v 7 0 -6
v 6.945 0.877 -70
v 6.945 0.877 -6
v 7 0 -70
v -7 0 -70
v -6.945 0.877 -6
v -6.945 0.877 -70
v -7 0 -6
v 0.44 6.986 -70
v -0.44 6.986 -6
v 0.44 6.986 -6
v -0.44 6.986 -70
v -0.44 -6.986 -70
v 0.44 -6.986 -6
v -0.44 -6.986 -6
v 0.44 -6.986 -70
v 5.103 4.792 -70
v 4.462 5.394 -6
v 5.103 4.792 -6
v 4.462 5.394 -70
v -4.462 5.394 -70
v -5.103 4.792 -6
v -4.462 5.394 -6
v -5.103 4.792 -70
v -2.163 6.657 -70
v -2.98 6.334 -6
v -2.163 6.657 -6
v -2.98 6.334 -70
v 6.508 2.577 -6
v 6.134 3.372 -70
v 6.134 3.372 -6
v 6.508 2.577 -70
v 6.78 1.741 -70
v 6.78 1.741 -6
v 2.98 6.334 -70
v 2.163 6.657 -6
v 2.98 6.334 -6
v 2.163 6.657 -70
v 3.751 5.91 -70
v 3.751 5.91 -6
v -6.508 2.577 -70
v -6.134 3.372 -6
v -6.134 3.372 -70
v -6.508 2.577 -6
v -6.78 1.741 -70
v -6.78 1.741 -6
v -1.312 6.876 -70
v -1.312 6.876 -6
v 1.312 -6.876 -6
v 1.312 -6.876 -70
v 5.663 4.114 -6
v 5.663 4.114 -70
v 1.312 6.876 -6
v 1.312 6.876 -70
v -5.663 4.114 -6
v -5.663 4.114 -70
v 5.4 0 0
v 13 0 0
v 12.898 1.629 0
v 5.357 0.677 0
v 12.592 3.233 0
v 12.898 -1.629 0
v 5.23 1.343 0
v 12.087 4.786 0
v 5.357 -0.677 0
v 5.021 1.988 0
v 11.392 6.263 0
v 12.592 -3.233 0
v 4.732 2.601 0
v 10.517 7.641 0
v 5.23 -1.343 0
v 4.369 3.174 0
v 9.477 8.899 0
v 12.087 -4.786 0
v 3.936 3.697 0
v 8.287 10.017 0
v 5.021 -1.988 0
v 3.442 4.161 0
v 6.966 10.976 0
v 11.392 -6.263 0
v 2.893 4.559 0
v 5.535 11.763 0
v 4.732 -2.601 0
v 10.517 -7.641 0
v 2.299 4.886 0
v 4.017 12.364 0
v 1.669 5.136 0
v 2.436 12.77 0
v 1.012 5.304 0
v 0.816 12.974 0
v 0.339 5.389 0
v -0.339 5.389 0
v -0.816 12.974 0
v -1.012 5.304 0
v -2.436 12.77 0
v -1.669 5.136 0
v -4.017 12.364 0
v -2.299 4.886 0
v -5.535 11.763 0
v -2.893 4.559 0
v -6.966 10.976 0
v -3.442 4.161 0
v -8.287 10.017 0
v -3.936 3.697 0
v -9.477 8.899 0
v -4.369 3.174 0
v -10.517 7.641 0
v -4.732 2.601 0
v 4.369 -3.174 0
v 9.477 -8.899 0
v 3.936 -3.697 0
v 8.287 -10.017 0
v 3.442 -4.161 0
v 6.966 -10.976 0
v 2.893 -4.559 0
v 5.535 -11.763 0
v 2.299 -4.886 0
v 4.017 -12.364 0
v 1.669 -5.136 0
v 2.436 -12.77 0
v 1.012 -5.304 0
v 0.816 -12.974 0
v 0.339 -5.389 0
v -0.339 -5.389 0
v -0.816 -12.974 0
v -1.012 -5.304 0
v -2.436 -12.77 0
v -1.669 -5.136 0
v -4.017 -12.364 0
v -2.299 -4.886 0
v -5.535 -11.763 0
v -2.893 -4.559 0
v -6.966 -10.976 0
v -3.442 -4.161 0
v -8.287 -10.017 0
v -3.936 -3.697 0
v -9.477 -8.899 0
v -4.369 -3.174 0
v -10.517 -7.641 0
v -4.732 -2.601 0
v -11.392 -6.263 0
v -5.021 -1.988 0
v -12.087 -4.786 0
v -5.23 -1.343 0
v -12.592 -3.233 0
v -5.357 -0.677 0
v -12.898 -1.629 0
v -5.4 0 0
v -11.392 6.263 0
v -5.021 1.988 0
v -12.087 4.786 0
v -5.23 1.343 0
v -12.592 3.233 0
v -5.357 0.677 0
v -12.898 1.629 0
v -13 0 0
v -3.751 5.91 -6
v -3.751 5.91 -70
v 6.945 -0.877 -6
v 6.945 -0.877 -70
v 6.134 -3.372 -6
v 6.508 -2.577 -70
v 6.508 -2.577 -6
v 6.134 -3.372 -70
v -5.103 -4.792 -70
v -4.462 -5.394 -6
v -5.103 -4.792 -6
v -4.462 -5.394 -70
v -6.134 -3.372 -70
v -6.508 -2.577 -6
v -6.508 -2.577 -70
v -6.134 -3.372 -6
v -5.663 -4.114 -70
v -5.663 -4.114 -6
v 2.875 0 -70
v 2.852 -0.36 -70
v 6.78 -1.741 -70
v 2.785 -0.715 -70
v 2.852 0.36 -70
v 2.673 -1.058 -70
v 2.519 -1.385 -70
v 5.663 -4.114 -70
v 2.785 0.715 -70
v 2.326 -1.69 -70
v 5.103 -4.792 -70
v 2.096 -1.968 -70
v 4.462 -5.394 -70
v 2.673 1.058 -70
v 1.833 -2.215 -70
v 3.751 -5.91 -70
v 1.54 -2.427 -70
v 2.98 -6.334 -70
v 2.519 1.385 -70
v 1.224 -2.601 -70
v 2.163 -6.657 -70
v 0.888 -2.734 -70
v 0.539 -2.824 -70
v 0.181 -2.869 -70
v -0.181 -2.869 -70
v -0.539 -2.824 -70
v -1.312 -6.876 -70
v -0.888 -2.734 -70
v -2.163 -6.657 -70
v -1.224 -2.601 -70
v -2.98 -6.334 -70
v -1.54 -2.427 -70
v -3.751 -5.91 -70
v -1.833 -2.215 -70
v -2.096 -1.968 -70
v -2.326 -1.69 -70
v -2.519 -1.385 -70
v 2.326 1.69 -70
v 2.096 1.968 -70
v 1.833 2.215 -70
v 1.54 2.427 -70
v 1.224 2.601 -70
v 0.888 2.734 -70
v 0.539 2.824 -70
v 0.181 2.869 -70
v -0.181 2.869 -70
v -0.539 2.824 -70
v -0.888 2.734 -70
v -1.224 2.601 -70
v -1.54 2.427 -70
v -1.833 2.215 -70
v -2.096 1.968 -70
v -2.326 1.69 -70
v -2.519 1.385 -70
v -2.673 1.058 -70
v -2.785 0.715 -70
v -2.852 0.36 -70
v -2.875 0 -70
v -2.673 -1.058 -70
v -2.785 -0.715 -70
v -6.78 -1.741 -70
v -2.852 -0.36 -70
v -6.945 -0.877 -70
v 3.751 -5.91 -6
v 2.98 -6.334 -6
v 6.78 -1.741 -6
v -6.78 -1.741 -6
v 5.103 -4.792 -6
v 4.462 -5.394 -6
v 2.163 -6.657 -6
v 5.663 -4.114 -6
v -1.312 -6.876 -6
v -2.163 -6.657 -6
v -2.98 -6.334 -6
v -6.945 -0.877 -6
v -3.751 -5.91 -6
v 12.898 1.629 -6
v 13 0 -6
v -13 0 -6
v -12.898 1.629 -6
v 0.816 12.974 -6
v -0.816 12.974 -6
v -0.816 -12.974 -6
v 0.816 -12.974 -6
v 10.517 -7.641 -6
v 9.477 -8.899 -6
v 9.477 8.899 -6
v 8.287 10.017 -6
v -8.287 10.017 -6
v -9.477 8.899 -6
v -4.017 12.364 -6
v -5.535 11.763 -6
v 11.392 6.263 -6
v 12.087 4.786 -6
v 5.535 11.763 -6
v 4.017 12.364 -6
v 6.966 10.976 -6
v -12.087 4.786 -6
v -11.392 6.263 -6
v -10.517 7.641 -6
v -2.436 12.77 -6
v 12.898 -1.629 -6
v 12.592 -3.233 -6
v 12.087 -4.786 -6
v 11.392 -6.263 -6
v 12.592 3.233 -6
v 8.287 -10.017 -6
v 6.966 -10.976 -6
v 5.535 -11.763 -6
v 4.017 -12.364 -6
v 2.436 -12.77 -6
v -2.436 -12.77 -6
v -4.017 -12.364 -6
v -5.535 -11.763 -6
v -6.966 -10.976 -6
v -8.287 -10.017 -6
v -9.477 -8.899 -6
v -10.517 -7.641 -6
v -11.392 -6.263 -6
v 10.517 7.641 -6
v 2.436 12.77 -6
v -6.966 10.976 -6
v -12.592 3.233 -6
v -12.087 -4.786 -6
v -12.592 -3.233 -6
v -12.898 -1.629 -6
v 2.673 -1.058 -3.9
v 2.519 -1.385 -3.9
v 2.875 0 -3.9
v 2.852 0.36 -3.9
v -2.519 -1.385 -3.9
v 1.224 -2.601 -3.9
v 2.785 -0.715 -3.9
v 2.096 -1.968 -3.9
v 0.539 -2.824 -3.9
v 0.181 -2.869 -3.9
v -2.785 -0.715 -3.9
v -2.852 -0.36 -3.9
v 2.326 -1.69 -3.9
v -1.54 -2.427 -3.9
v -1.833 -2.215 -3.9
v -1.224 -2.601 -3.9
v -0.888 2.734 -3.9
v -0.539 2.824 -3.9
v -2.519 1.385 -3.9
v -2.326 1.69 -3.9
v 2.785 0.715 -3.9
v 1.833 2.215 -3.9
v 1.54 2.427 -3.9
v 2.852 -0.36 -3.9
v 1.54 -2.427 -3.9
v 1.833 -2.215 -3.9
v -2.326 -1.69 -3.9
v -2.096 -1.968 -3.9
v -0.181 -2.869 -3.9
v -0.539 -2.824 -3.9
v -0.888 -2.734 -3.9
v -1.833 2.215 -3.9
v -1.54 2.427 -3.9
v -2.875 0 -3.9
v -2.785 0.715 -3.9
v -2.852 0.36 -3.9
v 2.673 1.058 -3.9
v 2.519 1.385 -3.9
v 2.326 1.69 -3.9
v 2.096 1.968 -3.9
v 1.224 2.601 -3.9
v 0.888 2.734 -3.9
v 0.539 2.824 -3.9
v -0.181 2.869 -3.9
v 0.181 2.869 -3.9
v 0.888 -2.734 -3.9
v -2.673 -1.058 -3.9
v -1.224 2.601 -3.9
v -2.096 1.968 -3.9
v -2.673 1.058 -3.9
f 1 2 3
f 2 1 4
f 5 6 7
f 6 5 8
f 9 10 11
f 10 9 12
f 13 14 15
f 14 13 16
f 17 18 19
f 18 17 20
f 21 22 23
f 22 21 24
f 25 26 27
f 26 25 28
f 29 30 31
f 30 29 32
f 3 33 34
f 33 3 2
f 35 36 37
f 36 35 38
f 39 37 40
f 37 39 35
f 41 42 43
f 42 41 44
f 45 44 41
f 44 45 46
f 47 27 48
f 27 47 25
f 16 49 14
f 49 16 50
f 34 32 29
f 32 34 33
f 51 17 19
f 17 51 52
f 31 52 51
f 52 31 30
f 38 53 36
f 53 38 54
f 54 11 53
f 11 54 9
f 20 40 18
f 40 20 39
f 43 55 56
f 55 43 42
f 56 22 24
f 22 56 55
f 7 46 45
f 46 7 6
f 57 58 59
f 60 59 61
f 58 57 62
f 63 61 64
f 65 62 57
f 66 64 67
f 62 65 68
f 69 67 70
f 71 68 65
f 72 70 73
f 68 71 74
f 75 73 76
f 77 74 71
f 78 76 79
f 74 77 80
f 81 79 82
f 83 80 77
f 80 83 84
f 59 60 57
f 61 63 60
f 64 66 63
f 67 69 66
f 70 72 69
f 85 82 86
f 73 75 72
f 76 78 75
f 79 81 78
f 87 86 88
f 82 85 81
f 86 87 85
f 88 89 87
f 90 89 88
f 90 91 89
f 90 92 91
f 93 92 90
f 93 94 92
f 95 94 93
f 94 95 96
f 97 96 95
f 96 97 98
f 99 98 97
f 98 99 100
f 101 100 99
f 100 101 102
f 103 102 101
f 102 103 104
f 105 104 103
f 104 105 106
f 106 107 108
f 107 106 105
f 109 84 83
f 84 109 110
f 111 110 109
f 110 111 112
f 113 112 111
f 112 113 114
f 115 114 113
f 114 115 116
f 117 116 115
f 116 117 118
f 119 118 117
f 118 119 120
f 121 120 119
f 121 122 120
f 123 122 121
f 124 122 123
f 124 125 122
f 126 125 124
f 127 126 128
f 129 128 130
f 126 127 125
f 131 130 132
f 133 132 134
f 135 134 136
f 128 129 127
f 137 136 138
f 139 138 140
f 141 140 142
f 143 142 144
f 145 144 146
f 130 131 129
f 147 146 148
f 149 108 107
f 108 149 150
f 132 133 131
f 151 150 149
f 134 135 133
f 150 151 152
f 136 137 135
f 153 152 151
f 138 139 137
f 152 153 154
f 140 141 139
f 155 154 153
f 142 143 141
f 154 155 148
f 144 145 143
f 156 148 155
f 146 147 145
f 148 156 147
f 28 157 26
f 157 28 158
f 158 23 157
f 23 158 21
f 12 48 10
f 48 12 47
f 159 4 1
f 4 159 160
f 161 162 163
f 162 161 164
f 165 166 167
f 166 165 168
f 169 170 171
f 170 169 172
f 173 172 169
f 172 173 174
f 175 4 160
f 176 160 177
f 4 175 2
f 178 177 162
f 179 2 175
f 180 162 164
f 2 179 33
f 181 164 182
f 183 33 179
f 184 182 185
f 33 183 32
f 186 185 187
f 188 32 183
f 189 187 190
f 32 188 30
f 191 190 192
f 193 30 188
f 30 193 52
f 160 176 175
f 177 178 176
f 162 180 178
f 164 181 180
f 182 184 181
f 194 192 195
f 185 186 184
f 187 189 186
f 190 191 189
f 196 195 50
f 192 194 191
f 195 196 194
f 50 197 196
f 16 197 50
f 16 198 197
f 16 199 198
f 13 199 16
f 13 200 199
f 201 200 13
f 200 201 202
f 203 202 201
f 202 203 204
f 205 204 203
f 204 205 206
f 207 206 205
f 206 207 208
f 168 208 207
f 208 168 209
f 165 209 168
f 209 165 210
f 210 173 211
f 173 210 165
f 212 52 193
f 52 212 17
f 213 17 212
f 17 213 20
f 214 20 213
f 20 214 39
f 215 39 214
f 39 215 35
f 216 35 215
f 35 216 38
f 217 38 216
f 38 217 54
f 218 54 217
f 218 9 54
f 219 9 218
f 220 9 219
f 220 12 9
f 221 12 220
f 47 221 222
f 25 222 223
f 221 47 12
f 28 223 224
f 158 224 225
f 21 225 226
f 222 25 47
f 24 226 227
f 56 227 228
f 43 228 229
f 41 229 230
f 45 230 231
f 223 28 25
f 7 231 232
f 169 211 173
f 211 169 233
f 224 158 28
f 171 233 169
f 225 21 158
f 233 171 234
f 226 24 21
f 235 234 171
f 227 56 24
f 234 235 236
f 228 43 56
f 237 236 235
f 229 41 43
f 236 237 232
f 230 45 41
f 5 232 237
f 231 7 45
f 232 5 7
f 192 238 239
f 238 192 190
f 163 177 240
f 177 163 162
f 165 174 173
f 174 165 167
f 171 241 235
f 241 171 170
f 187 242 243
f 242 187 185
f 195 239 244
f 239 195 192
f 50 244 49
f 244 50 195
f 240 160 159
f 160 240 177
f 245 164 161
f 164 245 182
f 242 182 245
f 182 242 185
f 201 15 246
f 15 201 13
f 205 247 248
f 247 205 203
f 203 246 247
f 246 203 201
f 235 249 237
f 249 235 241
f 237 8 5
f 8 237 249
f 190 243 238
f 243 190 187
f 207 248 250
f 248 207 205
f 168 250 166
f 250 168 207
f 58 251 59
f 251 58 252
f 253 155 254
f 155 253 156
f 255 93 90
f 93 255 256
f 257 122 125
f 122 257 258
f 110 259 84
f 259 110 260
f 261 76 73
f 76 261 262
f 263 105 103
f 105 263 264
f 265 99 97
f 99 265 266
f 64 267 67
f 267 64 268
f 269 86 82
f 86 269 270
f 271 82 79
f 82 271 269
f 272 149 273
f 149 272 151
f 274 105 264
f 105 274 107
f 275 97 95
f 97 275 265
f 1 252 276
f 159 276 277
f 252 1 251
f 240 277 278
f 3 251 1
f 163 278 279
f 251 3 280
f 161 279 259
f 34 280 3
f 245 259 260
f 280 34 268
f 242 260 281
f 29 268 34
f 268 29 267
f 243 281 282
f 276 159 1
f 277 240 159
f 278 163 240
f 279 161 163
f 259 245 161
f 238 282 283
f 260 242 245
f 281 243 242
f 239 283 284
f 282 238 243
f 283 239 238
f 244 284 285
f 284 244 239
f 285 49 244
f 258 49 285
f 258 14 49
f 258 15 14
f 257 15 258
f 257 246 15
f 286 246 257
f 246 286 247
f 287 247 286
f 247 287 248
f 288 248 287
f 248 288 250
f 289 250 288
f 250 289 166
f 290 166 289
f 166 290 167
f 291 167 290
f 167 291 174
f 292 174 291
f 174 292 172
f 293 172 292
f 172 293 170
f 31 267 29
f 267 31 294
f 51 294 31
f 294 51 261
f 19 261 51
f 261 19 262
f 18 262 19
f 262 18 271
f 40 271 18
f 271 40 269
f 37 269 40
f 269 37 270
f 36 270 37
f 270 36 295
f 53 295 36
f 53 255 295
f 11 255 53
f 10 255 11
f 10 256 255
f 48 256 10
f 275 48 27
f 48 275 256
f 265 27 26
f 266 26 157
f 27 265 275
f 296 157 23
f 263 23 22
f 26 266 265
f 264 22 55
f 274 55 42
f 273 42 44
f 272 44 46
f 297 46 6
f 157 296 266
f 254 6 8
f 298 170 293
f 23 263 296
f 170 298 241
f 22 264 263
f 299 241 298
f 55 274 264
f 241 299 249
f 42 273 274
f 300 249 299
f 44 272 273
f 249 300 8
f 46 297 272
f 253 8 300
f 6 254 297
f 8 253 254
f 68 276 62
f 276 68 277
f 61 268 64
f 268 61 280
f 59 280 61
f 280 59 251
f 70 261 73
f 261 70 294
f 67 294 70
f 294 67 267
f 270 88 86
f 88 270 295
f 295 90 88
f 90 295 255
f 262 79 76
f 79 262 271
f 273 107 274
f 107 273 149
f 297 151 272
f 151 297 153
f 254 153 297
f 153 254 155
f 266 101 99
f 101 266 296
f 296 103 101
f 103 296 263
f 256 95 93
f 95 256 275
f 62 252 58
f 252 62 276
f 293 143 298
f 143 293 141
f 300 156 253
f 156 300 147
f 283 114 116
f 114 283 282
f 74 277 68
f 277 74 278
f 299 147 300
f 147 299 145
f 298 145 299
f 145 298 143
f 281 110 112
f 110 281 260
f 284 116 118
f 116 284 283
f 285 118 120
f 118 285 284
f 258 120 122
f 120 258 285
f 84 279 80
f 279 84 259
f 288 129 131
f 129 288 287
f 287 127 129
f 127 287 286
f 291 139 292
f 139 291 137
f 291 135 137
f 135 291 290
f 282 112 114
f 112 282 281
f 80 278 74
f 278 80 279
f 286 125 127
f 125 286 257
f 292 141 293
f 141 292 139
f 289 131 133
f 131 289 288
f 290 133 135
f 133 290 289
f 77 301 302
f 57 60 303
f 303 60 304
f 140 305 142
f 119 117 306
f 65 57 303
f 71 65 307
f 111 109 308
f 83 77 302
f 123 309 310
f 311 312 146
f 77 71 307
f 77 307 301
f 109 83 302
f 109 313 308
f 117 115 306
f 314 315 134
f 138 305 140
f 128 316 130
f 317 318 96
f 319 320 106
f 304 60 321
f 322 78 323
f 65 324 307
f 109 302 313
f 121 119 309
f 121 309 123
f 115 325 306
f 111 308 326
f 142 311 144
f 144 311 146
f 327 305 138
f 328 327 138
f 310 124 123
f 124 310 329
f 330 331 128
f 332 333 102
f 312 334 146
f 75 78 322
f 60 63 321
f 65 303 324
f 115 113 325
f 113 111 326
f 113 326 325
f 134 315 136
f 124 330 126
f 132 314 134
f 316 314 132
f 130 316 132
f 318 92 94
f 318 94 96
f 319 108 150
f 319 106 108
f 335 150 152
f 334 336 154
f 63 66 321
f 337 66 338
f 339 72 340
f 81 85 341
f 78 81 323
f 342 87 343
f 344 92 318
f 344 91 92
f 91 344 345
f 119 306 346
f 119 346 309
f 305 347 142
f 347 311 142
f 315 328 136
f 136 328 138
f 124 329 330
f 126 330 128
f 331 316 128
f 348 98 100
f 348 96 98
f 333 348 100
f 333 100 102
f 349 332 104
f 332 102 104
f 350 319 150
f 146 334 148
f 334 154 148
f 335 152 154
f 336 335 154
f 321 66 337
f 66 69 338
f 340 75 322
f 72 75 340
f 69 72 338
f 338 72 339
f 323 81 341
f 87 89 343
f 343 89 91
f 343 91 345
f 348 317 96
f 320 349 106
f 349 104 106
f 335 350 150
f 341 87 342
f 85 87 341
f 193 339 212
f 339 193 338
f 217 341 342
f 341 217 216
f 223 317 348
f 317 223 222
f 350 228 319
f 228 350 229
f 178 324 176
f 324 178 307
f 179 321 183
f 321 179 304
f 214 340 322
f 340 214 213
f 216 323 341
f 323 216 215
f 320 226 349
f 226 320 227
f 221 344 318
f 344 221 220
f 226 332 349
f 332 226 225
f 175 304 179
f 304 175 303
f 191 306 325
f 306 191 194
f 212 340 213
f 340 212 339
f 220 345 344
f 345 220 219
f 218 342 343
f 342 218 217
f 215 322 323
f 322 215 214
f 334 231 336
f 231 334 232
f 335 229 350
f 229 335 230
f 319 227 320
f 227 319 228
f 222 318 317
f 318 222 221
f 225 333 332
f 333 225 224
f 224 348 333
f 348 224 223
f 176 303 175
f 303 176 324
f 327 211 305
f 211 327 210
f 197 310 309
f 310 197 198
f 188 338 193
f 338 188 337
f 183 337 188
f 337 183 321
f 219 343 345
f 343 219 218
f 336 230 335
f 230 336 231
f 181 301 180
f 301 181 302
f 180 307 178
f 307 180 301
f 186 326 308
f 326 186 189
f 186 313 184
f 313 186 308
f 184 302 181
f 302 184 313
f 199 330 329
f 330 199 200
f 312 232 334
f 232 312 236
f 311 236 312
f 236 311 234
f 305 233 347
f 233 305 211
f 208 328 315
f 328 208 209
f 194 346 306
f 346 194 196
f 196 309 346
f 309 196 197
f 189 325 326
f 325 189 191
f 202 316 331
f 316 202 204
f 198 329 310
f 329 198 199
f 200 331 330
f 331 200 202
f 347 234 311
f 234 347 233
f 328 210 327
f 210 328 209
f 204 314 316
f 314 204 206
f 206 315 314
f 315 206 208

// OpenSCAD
$fn = 50;


difference() {
	union() {
		translate(v = [0, 0, -70.0000000000]) {
			cylinder(h = 70, r = 7.0000000000);
		}
		translate(v = [0, 0, -6.0000000000]) {
			cylinder(h = 6, r = 13.0000000000);
		}
	}
	union() {
		translate(v = [0, 0, 0]) {
			rotate(a = [0, 0, 0]) {
				difference() {
					union() {
						#translate(v = [0, 0, -70.0000000000]) {
							cylinder(h = 70, r = 2.6000000000);
						}
						#translate(v = [0, 0, -3.9000000000]) {
							cylinder(h = 3.9000000000, r1 = 2.8750000000, r2 = 5.4000000000);
						}
						#translate(v = [0, 0, -70.0000000000]) {
							cylinder(h = 70, r = 2.8750000000);
						}
						#translate(v = [0, 0, -70.0000000000]) {
							cylinder(h = 70, r = 2.6000000000);
						}
					}
					union();
				}
			}
		}
	}
}
